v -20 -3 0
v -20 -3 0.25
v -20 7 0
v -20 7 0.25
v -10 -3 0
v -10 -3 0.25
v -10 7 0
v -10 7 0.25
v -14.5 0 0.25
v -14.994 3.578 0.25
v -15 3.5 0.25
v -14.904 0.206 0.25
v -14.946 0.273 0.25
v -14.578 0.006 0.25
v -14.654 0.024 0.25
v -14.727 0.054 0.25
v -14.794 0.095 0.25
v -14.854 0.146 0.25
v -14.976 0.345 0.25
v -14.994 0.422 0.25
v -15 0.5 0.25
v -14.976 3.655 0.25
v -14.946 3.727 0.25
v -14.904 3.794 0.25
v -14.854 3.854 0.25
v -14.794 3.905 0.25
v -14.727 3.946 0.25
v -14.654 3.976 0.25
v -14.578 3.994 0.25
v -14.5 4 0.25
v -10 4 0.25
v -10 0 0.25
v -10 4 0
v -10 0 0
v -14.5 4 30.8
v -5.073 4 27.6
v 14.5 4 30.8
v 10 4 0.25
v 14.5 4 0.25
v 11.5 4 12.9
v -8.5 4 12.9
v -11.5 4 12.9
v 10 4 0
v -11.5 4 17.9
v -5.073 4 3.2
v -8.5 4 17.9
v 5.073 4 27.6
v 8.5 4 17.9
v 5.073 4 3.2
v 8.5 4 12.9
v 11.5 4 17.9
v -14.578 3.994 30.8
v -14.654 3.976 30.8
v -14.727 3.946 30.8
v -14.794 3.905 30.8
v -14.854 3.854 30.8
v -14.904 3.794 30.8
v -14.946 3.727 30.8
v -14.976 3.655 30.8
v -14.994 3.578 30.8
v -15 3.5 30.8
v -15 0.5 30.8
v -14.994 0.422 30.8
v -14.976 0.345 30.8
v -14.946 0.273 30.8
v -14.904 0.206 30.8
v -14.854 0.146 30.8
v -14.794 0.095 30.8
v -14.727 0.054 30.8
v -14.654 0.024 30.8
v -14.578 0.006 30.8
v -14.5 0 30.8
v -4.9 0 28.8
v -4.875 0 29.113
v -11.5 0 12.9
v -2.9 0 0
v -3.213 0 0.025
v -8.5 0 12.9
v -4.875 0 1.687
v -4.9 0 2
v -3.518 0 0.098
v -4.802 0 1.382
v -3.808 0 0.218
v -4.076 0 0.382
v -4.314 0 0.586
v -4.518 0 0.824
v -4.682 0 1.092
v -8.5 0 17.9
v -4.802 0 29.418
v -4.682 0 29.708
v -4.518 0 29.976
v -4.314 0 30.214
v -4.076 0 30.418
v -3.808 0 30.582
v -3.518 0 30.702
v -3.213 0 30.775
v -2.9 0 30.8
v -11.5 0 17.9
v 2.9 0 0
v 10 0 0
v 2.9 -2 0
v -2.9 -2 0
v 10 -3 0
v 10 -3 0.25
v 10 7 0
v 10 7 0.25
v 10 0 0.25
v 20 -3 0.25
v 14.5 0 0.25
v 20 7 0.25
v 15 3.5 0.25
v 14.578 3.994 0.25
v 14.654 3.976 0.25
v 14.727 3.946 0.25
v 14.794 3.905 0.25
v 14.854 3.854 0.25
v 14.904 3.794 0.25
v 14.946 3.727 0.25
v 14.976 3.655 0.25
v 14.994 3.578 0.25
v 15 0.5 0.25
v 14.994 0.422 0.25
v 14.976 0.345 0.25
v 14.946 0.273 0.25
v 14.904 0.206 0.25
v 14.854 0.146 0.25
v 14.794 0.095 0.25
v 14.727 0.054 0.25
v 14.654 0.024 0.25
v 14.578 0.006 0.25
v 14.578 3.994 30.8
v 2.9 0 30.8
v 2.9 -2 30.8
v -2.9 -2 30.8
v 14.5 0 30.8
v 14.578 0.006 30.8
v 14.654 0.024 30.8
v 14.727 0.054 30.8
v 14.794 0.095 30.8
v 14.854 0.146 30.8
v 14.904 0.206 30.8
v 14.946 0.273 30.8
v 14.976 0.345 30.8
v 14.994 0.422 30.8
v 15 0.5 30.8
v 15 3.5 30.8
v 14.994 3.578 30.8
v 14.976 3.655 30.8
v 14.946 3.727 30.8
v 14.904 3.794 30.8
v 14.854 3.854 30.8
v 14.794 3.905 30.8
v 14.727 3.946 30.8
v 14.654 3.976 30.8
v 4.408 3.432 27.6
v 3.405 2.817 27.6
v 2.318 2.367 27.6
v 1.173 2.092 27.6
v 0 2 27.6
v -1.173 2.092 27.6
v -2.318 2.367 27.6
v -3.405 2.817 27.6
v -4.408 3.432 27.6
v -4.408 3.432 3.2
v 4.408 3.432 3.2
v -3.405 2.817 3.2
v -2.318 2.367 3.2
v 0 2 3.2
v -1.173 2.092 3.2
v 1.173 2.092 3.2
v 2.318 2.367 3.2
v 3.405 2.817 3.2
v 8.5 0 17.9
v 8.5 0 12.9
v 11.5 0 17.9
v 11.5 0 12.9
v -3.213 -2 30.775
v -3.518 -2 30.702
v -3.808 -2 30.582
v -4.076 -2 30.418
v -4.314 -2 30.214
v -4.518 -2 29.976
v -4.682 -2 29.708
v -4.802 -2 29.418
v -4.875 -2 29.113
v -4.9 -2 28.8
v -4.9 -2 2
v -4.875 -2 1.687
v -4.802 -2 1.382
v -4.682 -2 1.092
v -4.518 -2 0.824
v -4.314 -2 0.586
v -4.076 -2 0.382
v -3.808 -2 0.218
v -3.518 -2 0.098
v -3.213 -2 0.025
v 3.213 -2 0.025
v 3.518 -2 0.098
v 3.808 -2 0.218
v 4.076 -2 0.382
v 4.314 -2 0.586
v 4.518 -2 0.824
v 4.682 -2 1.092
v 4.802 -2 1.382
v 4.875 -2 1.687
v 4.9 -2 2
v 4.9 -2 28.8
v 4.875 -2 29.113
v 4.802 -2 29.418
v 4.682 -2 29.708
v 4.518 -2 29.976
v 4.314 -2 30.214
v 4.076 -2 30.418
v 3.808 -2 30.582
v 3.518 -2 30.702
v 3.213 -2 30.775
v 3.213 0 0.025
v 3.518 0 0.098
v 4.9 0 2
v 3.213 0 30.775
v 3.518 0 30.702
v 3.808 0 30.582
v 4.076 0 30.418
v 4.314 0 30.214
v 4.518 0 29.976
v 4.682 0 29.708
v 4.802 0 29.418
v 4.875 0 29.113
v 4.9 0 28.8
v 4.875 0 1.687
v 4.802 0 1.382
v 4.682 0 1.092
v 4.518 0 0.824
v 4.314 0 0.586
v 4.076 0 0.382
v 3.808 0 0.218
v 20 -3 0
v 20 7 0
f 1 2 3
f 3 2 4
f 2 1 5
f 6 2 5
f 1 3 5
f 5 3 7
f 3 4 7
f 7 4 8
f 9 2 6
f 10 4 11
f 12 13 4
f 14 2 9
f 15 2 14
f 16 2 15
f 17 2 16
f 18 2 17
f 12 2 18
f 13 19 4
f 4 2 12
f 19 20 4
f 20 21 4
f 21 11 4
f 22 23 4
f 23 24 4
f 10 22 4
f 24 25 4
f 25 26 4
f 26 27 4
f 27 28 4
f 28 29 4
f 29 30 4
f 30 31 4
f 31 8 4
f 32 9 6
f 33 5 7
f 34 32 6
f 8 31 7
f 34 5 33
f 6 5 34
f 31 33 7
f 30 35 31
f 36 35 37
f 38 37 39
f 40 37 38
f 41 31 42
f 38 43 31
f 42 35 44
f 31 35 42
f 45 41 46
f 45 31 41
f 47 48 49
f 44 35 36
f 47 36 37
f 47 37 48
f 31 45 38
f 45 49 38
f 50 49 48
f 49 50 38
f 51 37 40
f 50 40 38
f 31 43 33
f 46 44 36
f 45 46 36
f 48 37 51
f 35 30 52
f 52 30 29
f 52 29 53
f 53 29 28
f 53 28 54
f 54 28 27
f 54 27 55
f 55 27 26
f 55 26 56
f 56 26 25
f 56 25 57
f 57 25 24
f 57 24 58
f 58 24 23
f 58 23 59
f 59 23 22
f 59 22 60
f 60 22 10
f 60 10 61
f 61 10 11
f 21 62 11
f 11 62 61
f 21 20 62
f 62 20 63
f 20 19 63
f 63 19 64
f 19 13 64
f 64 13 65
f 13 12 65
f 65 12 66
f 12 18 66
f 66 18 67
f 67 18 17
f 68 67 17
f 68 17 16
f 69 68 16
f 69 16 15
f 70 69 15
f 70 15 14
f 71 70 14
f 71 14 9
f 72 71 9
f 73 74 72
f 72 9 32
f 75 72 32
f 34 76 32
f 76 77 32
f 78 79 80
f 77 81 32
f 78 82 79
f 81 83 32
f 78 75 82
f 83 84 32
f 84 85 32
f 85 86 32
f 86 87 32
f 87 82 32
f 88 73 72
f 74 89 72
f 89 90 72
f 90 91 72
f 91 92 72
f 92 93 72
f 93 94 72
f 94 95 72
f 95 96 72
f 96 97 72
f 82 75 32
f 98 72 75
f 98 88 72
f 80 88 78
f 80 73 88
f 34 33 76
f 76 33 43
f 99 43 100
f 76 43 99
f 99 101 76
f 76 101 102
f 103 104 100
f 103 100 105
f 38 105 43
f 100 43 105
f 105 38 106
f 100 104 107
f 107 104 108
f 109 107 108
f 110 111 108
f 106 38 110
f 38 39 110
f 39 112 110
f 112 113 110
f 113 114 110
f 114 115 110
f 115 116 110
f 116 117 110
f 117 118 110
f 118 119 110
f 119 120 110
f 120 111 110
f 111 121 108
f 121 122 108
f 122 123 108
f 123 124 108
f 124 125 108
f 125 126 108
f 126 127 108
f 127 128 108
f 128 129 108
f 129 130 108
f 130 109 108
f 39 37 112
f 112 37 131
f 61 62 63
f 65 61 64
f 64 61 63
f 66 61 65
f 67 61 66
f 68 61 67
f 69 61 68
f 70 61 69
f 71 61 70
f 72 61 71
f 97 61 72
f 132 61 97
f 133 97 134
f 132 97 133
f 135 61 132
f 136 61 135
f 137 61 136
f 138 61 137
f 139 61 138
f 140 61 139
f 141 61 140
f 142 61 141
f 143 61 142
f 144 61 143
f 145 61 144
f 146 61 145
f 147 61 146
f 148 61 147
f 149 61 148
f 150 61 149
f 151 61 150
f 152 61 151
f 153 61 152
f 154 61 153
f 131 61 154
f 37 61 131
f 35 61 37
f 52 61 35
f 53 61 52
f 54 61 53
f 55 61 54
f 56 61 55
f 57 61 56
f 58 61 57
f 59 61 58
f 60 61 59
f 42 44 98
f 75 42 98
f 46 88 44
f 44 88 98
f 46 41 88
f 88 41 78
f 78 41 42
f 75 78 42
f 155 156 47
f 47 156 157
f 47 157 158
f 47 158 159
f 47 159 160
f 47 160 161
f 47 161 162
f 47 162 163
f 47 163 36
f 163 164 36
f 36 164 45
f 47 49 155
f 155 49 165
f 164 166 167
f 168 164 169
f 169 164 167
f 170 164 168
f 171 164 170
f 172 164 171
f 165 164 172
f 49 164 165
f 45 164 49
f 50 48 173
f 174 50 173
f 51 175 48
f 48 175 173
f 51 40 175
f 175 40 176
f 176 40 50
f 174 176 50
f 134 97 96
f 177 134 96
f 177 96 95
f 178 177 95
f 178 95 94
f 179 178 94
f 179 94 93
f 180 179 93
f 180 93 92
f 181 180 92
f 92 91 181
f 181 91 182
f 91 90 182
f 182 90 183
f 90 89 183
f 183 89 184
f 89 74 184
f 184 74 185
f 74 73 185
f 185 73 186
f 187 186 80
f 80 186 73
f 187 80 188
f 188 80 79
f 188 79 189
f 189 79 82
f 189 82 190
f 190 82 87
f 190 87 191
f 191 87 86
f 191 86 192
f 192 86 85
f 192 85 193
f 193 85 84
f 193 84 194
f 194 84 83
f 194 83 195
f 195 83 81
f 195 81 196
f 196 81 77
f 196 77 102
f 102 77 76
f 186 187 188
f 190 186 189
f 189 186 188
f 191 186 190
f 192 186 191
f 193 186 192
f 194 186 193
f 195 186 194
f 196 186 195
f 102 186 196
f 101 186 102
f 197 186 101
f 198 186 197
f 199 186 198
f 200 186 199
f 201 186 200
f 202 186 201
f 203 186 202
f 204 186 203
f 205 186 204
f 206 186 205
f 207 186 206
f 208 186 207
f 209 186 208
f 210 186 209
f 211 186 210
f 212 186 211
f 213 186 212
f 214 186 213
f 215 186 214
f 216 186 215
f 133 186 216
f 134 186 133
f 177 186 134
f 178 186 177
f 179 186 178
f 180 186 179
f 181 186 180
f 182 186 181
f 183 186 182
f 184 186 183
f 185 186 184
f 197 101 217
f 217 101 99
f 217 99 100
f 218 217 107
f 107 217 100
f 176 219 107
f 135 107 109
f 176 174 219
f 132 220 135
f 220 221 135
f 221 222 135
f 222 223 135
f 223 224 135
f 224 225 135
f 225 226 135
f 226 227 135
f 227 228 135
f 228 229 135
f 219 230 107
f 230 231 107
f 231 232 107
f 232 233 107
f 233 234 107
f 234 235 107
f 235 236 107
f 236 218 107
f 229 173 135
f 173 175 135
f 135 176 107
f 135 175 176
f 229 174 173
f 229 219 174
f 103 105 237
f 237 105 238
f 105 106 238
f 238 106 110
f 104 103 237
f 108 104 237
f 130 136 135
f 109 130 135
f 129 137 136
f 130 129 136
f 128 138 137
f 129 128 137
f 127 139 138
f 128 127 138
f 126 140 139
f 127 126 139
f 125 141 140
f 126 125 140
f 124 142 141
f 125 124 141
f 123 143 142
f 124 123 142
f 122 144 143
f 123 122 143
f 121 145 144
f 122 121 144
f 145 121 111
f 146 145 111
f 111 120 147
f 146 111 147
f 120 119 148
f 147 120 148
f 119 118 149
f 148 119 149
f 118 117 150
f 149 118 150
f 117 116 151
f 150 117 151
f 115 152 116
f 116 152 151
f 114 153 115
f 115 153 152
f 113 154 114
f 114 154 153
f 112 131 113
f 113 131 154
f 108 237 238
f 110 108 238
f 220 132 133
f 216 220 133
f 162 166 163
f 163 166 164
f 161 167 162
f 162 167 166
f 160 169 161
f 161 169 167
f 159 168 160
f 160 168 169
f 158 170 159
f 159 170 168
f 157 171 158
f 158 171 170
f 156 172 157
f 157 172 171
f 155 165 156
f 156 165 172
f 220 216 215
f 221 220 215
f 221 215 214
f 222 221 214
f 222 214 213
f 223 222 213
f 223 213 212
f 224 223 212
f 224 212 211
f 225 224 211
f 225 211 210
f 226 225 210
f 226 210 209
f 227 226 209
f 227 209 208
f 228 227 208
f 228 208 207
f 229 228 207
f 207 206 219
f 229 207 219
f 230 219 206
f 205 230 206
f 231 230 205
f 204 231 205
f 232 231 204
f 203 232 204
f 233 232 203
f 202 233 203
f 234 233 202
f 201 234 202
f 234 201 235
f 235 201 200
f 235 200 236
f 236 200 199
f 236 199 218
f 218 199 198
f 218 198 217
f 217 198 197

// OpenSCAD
support=1;
teardrop_angle=45;
brim=1;
support_T=0.25;

$fn=40;

module fillet(r, h, pos, rot)
{
	translate(pos)
	rotate(rot)
	translate([-r,-r,0])
		difference()
		{
			translate([0,0,-h/2])
				cube([r+1,r+1,h]);
			cylinder(r=r, h=h+2, center=true);
		}
}

module __rounded_cube(dim, r, rounded)
{
	difference()
	{
		cube(dim, center=true);
		if(search("x", rounded))
			for(y=[-1,1])
			for(z=[-1,1])
			scale([1,y,z])
			fillet(r=r, h=dim[0]+2, pos=[0, dim[1]/2, dim[2]/2], rot=[0,-90,0]);
		if(search("y", rounded))
			for(x=[-1,1])
			for(z=[-1,1])
			scale([x,1,z])
			fillet(r=r, h=dim[1]+2, pos=[dim[0]/2, 0, dim[2]/2], rot=[90,0,0]);
		if(search("z", rounded))
			for(x=[-1,1])
			for(y=[-1,1])
			scale([x,y,1])
			fillet(r=r, h=dim[2]+2, pos=[dim[0]/2, dim[1]/2, 0], rot=[0,0,0]);
		if(rounded=="xyz")
			for(x=[-1,1])
			for(y=[-1,1])
			for(z=[-1,1])
			scale([x,y,z])
			translate(dim/2)
			translate([-r,-r,-r])
			difference()
			{
				cube([r+1,r+1,r+1]);
				sphere(r=r);
			}
	}
}

module rounded_cube(dim=[], r=0, rounded="", center=false)
{
	if(center)
	{
		__rounded_cube(dim=dim, r=r, rounded=rounded);
	}
	else
	{
		translate(dim/2)
		__rounded_cube(dim=dim, r=r, rounded=rounded);
	}
}
t_ang=teardrop_angle;

module supported_cylinder(r=1,h=1,z_rot=0, center=false)
{
	union()
	{
		cylinder(r=r,h=h,center=center);
		if (support)
		rotate([0,0,z_rot])
		linear_extrude(height=h, center=center)
		if(support_cylinder_style=="trapezoid")
		{
			polygon([[r*sin(t_ang),r*cos(t_ang)], [r, r*(cos(t_ang)-tan(t_ang)*(1-sin(t_ang)))], [r, -r*(cos(t_ang)-tan(t_ang)*(1-sin(t_ang)))],[r*sin(t_ang),-r*cos(t_ang)]]);
		}
		else if(support_cylinder_style=="teardrop")
		{
			polygon([[r*sin(t_ang),r*cos(t_ang)],[r/sin(t_ang),0],[r*sin(t_ang),-r*cos(t_ang)]]);
		}		
	}
}

L=30.8;
W=30;
T=4;
slot_W=9.8;
slot_T=2;
slot_fillet=2;

bearing_D=15;
bearing_from_plane=2;
bearing_L=24.4;

module Prusa_i3_Y_Busing()
{
	difference()
	{
		union()
		{
			translate([-W/2,0,0])
				rounded_cube([W,T,L], r=0.5, rounded="z");
			translate([-slot_W/2,-slot_T,0])
				rounded_cube([slot_W,slot_T,L], r=slot_fillet, rounded="y");
			if(brim)
				for(i=[-1,1])
				translate([-15*i,2,support_T/2])
					cube([10,10,support_T], center=true);
		}
		for(i=[-10,10])
			translate([i,T/2,L/2])
			cube([3,T+2,5], center=true);
		translate([0,bearing_D/2+bearing_from_plane, L/2])
			cylinder(r=bearing_D/2, h=bearing_L, center=true);
	}
}

Prusa_i3_Y_Busing();
